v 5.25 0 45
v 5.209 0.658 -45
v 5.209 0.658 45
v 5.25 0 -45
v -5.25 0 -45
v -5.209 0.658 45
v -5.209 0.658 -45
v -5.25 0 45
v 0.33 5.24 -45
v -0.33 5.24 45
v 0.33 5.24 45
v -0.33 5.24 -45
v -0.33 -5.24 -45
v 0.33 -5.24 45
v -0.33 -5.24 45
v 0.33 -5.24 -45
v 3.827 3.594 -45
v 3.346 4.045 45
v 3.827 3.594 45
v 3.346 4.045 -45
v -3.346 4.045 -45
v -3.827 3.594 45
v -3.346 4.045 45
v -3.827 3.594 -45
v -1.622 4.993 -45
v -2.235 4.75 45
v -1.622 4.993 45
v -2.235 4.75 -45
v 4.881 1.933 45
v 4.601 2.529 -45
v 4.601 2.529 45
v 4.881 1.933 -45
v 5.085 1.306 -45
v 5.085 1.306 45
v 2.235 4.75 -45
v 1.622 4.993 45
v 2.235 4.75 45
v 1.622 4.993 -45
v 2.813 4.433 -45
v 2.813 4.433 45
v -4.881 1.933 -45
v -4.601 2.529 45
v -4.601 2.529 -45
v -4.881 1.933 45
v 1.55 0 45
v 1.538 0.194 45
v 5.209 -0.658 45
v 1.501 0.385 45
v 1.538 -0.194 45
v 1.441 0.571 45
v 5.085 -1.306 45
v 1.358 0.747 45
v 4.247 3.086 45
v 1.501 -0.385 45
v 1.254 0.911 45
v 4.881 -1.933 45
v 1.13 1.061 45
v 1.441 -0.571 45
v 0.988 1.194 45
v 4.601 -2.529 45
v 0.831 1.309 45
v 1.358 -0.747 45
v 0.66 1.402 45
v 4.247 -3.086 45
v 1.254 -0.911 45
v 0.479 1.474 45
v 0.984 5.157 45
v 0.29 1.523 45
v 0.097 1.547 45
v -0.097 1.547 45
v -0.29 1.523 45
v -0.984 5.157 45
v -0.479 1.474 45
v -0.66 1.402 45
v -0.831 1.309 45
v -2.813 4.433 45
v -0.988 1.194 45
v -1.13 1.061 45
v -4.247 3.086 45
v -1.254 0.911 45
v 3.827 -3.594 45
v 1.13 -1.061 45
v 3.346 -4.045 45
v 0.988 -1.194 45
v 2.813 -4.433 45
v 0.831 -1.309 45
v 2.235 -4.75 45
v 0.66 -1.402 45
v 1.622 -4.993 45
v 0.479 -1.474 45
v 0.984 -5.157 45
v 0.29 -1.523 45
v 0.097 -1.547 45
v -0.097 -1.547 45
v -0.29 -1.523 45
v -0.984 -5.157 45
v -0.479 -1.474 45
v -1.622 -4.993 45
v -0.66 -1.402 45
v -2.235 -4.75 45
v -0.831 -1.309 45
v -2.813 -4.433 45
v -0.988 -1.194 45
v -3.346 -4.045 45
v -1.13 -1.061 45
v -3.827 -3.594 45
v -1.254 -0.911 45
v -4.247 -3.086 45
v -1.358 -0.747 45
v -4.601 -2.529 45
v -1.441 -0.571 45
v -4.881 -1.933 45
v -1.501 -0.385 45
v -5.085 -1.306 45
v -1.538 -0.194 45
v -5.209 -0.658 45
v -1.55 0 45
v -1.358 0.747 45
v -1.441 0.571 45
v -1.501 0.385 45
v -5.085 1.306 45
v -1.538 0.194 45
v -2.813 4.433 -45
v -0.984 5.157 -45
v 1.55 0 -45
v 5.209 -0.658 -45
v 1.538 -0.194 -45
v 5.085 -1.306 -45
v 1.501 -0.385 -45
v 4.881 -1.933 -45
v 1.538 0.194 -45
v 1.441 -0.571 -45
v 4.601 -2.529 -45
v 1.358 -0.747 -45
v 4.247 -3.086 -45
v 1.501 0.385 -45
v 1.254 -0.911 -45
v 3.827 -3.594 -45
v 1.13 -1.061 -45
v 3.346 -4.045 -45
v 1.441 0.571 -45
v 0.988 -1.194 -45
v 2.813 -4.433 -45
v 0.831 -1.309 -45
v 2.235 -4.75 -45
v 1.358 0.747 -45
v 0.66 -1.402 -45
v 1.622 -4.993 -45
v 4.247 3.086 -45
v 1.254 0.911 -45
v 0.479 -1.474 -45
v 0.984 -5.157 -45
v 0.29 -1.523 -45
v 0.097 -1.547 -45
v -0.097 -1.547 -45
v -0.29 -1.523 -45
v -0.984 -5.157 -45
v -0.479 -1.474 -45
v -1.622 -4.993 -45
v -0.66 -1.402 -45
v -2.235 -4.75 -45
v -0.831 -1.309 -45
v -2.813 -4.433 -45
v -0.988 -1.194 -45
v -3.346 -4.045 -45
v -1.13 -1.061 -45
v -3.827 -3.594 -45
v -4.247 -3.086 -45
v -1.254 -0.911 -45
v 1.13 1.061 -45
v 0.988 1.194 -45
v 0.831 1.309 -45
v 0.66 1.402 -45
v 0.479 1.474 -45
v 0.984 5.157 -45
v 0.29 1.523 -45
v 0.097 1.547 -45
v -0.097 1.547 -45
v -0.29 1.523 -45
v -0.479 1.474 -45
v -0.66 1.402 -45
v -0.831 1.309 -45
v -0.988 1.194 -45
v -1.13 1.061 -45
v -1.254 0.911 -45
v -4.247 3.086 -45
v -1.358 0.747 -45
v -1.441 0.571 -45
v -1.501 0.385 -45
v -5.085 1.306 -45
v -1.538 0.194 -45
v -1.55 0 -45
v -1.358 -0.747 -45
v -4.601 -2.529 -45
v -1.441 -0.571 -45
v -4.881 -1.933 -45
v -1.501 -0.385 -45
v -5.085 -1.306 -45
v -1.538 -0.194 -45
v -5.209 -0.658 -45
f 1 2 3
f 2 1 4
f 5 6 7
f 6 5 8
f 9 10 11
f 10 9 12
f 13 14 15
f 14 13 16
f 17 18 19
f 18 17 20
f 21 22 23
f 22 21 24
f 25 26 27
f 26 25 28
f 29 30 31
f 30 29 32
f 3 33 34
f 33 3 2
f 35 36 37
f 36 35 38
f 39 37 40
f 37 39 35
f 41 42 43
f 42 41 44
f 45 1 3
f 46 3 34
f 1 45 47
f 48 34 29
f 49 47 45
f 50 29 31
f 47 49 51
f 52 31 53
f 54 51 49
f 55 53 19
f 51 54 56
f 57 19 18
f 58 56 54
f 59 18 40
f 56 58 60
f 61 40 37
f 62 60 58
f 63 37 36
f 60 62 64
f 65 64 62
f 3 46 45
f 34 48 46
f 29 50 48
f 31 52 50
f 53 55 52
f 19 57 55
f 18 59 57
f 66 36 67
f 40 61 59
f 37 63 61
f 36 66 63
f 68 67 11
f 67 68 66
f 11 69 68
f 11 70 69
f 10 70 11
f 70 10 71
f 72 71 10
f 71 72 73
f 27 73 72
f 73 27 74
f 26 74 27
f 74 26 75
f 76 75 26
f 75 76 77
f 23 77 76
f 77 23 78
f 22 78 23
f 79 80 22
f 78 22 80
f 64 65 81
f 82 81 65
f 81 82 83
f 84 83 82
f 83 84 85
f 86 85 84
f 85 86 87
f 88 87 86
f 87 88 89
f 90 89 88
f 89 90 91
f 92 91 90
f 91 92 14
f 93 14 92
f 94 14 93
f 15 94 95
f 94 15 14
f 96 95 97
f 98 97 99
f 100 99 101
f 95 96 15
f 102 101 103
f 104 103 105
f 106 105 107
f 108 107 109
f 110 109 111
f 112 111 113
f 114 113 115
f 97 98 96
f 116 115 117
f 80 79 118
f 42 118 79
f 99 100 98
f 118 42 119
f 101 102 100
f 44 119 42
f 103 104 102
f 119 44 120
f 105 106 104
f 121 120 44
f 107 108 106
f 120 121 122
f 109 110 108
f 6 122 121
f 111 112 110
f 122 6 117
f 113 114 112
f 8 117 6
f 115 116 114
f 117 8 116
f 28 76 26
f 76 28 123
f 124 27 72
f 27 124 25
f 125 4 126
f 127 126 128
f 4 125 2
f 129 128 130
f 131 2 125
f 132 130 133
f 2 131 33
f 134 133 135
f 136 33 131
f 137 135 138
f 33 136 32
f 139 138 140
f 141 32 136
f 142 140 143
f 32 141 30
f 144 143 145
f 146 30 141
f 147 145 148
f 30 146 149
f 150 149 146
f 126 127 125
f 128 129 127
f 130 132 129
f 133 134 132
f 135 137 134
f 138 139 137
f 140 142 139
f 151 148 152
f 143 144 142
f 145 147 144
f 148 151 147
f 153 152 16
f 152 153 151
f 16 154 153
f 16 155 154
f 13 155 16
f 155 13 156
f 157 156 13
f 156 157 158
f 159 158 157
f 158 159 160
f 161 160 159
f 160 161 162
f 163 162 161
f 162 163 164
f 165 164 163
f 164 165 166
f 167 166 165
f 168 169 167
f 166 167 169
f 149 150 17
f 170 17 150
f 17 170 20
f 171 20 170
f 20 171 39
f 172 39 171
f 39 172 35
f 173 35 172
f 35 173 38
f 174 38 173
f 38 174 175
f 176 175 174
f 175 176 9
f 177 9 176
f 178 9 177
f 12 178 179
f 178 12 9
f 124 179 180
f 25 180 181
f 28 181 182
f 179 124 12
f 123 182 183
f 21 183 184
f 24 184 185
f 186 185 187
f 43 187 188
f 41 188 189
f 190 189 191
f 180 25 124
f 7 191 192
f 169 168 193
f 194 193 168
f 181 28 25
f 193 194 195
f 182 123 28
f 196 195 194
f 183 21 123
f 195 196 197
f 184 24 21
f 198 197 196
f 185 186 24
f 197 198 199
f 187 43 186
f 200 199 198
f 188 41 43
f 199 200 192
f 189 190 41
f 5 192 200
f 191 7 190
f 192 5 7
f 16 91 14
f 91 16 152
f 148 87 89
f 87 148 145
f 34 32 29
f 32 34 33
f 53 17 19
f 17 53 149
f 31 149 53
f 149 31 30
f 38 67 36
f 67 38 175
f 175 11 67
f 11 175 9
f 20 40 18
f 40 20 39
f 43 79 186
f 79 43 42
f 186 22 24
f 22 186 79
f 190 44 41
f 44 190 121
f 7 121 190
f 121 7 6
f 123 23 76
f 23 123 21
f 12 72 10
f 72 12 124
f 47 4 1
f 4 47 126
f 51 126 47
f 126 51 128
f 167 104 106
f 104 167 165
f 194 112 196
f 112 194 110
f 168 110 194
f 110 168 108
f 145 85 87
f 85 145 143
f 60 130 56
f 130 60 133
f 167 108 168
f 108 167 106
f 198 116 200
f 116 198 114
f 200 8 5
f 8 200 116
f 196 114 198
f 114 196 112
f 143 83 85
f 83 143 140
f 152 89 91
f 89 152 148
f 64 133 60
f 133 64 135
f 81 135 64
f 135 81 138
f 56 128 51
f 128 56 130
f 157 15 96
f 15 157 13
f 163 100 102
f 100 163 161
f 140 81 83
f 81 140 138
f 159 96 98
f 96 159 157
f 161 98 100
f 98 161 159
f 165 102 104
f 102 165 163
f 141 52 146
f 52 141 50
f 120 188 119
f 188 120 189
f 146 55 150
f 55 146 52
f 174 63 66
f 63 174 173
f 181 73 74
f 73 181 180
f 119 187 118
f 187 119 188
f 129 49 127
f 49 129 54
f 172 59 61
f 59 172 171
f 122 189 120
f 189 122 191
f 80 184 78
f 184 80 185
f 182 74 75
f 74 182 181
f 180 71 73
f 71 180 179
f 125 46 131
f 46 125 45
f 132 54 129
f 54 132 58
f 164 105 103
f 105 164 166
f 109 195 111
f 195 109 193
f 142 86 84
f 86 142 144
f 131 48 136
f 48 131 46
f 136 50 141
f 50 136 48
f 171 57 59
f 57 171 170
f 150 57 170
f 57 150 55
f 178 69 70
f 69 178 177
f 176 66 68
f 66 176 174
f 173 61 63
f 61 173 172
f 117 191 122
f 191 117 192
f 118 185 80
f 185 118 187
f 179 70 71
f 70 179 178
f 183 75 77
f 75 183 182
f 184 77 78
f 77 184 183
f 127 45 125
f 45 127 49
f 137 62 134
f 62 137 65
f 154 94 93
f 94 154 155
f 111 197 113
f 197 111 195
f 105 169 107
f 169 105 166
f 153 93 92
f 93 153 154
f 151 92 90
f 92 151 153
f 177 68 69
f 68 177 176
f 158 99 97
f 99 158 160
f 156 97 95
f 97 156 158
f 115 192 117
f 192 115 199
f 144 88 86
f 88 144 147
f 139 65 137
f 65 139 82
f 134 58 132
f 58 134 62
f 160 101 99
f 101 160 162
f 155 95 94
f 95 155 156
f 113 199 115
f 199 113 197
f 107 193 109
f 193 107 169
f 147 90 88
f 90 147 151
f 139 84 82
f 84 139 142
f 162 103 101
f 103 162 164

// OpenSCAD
$fn = 50;


difference() {
	union() {
		translate(v = [0, 0, -45.0000000000]) {
			cylinder(h = 90, r = 5.2500000000);
		}
	}
	union() {
		translate(v = [0, 0, -100.0000000000]) {
			cylinder(h = 200, r = 1.5500000000);
		}
	}
}
